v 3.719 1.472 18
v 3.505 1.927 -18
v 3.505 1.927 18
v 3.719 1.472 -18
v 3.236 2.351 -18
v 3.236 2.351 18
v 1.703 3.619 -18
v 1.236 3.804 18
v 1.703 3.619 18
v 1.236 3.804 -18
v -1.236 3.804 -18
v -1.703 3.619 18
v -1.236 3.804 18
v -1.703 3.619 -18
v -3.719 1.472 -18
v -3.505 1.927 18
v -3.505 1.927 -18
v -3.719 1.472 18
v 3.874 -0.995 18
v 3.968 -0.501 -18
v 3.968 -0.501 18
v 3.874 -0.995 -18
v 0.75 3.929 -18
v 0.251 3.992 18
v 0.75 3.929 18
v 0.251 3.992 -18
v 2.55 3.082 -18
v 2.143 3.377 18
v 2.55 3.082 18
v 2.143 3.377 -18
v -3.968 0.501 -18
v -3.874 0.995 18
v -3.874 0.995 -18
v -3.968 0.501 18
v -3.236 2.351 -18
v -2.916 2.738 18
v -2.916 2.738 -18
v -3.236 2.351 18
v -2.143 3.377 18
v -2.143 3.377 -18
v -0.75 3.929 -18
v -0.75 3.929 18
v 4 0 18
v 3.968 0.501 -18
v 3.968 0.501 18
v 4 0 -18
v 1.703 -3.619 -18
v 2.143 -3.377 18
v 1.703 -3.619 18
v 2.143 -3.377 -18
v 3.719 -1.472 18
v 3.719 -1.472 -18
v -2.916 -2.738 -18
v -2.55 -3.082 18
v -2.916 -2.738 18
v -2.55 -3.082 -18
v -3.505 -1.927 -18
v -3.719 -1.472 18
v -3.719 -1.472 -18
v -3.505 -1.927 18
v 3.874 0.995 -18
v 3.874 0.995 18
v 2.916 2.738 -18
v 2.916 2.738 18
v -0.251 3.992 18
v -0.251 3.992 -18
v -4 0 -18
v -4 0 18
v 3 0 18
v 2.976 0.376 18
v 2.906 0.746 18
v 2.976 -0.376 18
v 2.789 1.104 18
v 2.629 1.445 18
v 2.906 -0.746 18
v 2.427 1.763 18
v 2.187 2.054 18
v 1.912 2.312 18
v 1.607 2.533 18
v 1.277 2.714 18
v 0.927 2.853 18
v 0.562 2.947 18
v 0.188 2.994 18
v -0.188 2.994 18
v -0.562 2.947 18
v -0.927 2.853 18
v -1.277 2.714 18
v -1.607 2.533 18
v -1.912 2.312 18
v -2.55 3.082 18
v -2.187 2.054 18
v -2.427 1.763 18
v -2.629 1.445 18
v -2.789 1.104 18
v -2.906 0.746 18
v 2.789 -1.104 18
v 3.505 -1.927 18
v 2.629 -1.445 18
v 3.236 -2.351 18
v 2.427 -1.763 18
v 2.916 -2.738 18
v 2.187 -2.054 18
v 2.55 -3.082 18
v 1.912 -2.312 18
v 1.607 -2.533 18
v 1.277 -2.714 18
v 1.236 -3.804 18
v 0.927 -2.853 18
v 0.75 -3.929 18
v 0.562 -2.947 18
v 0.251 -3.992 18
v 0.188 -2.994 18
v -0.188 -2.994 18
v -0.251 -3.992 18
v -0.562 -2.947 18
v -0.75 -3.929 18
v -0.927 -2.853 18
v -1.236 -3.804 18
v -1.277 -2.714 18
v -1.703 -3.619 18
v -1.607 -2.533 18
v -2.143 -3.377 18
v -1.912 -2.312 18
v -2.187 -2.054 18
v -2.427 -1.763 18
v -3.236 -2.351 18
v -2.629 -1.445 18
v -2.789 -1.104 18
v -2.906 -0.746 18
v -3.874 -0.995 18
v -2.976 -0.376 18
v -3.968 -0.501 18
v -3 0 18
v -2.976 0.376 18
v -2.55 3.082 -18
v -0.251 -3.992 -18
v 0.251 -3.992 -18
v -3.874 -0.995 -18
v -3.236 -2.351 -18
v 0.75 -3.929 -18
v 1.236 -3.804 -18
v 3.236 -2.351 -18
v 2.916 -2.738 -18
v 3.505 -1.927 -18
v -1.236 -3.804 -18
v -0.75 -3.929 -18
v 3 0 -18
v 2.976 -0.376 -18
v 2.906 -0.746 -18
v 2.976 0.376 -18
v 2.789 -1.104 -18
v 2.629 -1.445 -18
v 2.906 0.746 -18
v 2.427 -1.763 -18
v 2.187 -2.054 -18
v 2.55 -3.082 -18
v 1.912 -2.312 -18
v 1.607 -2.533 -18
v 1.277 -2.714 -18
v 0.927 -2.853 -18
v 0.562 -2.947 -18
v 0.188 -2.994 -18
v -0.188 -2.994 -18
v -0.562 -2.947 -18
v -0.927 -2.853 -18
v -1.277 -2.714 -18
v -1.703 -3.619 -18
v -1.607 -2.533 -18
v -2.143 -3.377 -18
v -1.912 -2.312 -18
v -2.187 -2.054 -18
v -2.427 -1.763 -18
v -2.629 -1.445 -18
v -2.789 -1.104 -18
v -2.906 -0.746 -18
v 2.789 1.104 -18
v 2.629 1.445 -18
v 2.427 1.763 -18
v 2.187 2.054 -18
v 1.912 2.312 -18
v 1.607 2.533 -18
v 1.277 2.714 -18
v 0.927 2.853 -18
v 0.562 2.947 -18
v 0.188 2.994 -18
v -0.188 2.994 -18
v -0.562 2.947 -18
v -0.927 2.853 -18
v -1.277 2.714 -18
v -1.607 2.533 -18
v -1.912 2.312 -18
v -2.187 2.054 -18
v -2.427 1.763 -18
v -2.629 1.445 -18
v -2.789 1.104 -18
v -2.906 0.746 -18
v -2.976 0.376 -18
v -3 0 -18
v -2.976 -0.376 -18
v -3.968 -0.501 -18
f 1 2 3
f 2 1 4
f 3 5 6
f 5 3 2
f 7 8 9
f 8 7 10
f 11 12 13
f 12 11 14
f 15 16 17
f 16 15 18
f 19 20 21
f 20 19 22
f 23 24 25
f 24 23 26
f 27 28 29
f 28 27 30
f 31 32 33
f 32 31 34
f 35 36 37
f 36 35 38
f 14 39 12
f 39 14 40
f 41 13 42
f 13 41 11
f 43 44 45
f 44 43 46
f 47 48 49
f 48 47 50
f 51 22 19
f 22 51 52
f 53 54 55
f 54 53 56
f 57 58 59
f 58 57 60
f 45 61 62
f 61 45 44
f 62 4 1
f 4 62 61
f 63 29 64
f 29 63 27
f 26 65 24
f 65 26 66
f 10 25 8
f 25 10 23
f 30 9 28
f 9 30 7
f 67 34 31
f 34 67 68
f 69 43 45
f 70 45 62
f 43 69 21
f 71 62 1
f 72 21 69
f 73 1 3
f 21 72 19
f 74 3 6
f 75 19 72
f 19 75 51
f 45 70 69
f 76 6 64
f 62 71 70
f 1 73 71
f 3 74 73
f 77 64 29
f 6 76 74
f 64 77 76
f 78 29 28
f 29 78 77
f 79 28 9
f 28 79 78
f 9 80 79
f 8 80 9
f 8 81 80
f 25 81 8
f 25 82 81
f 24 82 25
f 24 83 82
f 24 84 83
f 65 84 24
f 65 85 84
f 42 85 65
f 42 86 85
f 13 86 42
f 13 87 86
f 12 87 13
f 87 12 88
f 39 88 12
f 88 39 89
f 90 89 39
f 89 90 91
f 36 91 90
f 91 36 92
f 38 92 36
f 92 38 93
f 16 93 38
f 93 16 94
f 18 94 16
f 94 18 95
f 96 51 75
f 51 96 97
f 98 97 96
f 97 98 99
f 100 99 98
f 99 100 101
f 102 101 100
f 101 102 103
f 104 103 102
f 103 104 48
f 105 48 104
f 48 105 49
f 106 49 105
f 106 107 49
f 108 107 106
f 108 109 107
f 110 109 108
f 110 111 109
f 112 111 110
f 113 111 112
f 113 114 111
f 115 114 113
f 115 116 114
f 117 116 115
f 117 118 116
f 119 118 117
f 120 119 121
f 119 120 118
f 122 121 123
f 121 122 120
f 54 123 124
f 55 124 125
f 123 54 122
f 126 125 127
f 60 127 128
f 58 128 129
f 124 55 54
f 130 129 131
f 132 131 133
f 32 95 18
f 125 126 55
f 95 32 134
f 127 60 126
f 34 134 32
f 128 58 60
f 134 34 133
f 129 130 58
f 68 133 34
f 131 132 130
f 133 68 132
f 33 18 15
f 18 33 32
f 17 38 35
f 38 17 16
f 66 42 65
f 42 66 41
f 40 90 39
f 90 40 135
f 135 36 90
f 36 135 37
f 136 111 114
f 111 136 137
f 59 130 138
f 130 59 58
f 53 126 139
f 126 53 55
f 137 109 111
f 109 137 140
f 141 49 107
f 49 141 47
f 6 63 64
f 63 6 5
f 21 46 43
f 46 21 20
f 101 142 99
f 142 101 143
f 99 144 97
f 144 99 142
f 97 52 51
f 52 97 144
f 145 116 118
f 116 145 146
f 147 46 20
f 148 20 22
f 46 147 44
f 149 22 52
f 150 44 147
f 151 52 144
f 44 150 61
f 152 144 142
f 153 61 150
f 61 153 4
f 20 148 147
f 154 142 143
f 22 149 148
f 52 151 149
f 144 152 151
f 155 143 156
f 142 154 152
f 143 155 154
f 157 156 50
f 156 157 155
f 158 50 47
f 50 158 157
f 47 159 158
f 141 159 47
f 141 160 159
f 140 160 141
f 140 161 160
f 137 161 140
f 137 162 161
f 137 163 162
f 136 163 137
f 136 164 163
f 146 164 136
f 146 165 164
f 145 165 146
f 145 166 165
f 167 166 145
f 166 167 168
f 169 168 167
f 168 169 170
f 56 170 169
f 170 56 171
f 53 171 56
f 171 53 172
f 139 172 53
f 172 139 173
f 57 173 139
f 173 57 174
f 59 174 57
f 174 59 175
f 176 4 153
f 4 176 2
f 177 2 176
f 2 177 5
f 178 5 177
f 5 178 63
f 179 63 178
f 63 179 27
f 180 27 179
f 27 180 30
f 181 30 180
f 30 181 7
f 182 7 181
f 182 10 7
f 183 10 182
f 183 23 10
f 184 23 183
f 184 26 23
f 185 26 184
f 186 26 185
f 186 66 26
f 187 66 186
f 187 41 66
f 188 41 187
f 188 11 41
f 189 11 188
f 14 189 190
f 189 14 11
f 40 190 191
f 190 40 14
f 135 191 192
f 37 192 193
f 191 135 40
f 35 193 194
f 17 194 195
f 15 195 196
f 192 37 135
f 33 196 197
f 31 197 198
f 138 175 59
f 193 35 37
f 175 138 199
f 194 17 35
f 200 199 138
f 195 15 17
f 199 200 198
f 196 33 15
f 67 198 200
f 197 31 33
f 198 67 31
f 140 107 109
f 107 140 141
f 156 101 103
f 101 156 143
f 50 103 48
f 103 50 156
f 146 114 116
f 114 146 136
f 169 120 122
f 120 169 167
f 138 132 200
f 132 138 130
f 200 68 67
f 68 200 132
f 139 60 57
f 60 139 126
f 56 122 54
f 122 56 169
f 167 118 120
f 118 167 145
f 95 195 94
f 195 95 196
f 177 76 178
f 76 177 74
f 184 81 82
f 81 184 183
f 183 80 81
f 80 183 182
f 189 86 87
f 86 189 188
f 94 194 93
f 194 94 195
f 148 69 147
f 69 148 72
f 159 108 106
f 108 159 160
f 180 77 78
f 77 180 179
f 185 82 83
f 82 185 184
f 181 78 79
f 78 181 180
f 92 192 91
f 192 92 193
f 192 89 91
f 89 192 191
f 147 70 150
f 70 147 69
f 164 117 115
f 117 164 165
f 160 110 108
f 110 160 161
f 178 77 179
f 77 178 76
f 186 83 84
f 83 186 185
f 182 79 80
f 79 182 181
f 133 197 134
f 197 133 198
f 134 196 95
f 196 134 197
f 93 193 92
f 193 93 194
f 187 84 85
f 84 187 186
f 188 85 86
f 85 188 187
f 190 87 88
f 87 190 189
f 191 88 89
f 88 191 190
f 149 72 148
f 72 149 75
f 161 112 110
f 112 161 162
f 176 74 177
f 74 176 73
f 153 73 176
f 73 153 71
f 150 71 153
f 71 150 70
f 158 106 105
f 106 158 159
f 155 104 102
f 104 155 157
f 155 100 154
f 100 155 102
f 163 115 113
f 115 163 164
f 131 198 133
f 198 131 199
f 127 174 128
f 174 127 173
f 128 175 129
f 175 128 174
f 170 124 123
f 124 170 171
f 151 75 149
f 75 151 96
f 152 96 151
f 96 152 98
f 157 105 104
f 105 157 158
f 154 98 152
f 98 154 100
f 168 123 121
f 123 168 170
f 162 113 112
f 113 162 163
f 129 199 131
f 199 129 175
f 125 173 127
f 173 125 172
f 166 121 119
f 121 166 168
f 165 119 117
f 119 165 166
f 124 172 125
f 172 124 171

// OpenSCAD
$fn = 50;


difference() {
	union() {
		translate(v = [0, 0, -18.0000000000]) {
			cylinder(h = 36, r = 4.0000000000);
		}
	}
	union() {
		translate(v = [0, 0, -100.0000000000]) {
			cylinder(h = 200, r = 3);
		}
	}
}
